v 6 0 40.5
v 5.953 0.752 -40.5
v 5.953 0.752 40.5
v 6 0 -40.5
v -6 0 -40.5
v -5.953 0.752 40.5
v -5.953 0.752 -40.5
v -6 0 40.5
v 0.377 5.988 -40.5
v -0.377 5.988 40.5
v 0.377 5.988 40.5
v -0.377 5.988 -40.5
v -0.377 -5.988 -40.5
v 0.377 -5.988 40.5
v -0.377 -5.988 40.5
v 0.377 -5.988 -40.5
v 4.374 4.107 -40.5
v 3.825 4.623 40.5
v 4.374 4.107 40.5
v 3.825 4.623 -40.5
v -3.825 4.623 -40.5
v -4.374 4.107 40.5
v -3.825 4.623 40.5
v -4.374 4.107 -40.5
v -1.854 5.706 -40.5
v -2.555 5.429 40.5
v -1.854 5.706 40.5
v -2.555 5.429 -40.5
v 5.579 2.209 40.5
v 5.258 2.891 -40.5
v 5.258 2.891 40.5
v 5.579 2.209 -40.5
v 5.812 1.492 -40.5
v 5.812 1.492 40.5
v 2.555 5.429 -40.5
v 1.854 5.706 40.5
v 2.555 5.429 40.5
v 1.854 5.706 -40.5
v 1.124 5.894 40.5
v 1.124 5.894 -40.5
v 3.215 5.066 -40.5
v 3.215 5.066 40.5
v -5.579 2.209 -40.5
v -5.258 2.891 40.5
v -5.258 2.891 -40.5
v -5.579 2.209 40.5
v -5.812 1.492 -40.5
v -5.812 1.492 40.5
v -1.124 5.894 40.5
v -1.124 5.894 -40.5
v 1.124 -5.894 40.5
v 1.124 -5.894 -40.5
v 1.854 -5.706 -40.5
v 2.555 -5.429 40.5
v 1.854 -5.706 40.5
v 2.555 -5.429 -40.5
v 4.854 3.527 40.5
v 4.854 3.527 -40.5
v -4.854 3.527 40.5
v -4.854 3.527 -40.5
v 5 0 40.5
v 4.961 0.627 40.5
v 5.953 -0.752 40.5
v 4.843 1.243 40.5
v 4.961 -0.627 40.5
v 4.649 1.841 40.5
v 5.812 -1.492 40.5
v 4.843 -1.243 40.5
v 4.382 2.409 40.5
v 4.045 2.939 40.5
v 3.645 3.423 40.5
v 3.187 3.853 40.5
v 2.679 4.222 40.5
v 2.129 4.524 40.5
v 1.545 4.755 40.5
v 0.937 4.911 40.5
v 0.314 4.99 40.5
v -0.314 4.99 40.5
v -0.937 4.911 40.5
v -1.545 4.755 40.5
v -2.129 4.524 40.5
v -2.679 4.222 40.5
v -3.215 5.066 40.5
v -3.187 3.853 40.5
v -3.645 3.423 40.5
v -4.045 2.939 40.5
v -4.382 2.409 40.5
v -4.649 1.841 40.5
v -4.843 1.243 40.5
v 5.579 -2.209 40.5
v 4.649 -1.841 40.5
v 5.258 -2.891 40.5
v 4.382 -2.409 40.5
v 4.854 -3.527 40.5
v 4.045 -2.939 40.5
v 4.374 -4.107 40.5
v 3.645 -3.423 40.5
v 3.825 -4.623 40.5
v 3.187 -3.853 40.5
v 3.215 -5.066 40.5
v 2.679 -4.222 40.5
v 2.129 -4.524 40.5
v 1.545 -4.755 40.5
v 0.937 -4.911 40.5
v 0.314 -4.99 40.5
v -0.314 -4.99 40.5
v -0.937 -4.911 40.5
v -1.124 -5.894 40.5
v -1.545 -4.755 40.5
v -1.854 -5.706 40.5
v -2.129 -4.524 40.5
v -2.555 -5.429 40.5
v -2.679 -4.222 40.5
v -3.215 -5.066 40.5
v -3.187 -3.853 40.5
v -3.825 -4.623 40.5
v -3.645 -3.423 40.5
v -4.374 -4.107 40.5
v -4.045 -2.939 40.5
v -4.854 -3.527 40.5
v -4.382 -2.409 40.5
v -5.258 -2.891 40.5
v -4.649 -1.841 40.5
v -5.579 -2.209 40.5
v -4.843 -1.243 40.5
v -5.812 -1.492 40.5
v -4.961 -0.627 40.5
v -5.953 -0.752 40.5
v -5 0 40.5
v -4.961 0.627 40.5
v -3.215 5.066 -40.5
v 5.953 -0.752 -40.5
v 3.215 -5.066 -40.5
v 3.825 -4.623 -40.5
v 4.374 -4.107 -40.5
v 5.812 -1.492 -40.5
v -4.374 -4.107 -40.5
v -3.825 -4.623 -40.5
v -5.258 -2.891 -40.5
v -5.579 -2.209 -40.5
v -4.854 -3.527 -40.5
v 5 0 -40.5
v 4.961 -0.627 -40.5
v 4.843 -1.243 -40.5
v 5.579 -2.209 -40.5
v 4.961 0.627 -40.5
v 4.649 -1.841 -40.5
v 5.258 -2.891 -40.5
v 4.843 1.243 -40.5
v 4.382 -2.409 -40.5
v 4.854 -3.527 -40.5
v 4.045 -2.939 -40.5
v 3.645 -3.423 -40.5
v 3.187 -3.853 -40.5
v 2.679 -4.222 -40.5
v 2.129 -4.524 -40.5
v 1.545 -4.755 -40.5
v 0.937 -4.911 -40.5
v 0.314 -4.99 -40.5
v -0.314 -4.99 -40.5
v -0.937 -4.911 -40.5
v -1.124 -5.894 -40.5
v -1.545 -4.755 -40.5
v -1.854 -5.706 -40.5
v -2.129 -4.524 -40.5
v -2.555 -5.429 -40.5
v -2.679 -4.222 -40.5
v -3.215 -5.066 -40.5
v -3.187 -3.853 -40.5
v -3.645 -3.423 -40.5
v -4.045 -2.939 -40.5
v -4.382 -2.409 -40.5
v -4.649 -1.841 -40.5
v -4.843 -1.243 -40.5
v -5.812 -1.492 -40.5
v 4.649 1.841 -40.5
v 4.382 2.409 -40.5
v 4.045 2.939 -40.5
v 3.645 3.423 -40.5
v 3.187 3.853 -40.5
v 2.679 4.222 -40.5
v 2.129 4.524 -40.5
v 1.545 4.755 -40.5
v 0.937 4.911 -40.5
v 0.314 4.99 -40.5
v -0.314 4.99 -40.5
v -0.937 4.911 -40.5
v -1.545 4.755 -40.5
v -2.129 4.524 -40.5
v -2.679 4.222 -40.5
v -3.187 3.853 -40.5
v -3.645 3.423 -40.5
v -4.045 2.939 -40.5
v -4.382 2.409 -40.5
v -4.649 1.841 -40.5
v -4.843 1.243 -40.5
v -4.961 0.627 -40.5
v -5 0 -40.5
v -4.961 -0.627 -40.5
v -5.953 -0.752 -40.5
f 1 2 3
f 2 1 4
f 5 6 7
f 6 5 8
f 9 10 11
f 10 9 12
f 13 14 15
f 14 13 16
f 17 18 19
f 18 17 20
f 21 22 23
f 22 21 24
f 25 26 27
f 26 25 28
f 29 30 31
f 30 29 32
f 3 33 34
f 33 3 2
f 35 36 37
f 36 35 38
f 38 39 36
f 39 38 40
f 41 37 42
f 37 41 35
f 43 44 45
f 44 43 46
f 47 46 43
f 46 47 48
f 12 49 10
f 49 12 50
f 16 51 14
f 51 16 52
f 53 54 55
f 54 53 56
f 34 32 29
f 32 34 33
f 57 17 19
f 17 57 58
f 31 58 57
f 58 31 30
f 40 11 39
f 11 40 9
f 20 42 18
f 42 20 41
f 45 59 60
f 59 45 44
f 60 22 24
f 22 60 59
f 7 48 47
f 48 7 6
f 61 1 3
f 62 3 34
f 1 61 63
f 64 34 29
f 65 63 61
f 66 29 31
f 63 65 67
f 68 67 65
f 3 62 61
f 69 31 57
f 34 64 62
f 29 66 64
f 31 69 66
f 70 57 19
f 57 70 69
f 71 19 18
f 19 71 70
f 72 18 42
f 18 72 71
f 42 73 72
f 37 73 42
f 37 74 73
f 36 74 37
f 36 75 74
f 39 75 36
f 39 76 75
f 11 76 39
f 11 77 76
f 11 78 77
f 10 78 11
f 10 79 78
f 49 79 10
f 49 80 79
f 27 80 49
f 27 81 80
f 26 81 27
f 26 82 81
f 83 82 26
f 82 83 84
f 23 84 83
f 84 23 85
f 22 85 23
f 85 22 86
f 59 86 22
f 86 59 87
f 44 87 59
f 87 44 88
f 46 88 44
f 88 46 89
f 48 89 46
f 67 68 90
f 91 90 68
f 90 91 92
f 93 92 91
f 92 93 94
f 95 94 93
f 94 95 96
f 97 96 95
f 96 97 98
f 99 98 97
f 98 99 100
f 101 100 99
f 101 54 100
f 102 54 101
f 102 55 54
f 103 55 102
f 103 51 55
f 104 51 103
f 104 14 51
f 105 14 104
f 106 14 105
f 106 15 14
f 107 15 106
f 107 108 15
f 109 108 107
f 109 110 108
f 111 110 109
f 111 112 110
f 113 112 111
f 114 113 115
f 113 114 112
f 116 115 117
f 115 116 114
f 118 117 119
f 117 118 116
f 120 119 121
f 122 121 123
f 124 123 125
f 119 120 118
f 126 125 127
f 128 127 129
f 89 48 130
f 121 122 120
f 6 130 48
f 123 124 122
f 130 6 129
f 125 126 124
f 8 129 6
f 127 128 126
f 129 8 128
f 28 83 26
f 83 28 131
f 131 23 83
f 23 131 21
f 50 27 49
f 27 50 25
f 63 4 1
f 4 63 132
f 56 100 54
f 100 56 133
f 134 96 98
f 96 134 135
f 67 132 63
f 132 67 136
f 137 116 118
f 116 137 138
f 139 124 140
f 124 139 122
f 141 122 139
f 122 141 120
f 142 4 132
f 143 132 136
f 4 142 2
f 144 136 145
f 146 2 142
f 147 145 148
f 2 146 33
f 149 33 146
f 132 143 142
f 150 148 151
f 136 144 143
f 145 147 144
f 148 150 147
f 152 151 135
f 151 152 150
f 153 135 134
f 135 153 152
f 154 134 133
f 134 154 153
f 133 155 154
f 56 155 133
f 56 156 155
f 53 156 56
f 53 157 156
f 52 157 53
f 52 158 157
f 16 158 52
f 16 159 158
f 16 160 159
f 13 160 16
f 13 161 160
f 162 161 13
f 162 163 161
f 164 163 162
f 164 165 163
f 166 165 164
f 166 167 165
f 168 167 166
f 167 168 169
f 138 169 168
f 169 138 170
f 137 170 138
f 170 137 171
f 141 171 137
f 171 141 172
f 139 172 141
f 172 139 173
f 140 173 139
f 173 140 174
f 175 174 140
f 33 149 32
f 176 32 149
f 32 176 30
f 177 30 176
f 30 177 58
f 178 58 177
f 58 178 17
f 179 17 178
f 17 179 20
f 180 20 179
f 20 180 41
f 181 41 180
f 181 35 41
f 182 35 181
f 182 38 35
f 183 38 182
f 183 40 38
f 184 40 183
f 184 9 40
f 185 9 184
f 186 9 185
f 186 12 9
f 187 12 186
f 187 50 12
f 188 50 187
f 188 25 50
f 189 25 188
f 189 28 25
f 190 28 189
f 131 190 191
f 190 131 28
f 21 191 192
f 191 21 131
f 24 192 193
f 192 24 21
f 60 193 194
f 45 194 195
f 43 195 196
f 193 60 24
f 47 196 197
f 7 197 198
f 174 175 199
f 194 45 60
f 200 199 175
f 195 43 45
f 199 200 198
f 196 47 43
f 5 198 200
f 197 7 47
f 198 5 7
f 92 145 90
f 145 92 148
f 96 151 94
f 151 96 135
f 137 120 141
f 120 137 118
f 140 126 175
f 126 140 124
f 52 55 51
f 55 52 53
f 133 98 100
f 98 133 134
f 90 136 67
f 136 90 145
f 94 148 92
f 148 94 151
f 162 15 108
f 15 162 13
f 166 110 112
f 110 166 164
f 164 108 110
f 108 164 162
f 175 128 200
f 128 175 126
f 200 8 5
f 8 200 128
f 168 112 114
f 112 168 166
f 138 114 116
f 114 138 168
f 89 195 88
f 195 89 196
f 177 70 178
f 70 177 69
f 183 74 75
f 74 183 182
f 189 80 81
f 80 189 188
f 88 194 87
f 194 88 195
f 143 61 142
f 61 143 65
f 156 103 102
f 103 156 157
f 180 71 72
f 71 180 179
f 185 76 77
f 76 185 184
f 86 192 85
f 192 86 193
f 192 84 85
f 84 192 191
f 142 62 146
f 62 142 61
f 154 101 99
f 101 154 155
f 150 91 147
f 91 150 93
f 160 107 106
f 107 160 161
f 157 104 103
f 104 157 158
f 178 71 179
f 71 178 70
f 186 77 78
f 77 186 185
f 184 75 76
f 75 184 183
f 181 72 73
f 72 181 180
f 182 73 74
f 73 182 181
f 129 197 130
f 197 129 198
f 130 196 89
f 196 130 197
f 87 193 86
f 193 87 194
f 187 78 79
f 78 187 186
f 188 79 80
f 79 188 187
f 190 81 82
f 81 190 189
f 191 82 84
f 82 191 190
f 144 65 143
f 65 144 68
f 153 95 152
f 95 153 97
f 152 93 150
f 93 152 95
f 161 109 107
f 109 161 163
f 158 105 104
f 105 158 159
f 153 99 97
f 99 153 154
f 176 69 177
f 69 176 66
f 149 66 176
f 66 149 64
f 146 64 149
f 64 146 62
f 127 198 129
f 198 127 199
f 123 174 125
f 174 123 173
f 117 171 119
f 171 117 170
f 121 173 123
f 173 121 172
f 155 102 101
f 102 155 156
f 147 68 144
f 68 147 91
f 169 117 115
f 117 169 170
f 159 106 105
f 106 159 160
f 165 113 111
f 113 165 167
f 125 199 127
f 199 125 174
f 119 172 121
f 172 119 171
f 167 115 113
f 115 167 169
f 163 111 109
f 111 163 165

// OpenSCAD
$fn = 50;


difference() {
	union() {
		translate(v = [0, 0, -40.5000000000]) {
			cylinder(h = 81, r = 6.0000000000);
		}
	}
	union() {
		translate(v = [0, 0, -100.0000000000]) {
			cylinder(h = 200, r = 5);
		}
	}
}
